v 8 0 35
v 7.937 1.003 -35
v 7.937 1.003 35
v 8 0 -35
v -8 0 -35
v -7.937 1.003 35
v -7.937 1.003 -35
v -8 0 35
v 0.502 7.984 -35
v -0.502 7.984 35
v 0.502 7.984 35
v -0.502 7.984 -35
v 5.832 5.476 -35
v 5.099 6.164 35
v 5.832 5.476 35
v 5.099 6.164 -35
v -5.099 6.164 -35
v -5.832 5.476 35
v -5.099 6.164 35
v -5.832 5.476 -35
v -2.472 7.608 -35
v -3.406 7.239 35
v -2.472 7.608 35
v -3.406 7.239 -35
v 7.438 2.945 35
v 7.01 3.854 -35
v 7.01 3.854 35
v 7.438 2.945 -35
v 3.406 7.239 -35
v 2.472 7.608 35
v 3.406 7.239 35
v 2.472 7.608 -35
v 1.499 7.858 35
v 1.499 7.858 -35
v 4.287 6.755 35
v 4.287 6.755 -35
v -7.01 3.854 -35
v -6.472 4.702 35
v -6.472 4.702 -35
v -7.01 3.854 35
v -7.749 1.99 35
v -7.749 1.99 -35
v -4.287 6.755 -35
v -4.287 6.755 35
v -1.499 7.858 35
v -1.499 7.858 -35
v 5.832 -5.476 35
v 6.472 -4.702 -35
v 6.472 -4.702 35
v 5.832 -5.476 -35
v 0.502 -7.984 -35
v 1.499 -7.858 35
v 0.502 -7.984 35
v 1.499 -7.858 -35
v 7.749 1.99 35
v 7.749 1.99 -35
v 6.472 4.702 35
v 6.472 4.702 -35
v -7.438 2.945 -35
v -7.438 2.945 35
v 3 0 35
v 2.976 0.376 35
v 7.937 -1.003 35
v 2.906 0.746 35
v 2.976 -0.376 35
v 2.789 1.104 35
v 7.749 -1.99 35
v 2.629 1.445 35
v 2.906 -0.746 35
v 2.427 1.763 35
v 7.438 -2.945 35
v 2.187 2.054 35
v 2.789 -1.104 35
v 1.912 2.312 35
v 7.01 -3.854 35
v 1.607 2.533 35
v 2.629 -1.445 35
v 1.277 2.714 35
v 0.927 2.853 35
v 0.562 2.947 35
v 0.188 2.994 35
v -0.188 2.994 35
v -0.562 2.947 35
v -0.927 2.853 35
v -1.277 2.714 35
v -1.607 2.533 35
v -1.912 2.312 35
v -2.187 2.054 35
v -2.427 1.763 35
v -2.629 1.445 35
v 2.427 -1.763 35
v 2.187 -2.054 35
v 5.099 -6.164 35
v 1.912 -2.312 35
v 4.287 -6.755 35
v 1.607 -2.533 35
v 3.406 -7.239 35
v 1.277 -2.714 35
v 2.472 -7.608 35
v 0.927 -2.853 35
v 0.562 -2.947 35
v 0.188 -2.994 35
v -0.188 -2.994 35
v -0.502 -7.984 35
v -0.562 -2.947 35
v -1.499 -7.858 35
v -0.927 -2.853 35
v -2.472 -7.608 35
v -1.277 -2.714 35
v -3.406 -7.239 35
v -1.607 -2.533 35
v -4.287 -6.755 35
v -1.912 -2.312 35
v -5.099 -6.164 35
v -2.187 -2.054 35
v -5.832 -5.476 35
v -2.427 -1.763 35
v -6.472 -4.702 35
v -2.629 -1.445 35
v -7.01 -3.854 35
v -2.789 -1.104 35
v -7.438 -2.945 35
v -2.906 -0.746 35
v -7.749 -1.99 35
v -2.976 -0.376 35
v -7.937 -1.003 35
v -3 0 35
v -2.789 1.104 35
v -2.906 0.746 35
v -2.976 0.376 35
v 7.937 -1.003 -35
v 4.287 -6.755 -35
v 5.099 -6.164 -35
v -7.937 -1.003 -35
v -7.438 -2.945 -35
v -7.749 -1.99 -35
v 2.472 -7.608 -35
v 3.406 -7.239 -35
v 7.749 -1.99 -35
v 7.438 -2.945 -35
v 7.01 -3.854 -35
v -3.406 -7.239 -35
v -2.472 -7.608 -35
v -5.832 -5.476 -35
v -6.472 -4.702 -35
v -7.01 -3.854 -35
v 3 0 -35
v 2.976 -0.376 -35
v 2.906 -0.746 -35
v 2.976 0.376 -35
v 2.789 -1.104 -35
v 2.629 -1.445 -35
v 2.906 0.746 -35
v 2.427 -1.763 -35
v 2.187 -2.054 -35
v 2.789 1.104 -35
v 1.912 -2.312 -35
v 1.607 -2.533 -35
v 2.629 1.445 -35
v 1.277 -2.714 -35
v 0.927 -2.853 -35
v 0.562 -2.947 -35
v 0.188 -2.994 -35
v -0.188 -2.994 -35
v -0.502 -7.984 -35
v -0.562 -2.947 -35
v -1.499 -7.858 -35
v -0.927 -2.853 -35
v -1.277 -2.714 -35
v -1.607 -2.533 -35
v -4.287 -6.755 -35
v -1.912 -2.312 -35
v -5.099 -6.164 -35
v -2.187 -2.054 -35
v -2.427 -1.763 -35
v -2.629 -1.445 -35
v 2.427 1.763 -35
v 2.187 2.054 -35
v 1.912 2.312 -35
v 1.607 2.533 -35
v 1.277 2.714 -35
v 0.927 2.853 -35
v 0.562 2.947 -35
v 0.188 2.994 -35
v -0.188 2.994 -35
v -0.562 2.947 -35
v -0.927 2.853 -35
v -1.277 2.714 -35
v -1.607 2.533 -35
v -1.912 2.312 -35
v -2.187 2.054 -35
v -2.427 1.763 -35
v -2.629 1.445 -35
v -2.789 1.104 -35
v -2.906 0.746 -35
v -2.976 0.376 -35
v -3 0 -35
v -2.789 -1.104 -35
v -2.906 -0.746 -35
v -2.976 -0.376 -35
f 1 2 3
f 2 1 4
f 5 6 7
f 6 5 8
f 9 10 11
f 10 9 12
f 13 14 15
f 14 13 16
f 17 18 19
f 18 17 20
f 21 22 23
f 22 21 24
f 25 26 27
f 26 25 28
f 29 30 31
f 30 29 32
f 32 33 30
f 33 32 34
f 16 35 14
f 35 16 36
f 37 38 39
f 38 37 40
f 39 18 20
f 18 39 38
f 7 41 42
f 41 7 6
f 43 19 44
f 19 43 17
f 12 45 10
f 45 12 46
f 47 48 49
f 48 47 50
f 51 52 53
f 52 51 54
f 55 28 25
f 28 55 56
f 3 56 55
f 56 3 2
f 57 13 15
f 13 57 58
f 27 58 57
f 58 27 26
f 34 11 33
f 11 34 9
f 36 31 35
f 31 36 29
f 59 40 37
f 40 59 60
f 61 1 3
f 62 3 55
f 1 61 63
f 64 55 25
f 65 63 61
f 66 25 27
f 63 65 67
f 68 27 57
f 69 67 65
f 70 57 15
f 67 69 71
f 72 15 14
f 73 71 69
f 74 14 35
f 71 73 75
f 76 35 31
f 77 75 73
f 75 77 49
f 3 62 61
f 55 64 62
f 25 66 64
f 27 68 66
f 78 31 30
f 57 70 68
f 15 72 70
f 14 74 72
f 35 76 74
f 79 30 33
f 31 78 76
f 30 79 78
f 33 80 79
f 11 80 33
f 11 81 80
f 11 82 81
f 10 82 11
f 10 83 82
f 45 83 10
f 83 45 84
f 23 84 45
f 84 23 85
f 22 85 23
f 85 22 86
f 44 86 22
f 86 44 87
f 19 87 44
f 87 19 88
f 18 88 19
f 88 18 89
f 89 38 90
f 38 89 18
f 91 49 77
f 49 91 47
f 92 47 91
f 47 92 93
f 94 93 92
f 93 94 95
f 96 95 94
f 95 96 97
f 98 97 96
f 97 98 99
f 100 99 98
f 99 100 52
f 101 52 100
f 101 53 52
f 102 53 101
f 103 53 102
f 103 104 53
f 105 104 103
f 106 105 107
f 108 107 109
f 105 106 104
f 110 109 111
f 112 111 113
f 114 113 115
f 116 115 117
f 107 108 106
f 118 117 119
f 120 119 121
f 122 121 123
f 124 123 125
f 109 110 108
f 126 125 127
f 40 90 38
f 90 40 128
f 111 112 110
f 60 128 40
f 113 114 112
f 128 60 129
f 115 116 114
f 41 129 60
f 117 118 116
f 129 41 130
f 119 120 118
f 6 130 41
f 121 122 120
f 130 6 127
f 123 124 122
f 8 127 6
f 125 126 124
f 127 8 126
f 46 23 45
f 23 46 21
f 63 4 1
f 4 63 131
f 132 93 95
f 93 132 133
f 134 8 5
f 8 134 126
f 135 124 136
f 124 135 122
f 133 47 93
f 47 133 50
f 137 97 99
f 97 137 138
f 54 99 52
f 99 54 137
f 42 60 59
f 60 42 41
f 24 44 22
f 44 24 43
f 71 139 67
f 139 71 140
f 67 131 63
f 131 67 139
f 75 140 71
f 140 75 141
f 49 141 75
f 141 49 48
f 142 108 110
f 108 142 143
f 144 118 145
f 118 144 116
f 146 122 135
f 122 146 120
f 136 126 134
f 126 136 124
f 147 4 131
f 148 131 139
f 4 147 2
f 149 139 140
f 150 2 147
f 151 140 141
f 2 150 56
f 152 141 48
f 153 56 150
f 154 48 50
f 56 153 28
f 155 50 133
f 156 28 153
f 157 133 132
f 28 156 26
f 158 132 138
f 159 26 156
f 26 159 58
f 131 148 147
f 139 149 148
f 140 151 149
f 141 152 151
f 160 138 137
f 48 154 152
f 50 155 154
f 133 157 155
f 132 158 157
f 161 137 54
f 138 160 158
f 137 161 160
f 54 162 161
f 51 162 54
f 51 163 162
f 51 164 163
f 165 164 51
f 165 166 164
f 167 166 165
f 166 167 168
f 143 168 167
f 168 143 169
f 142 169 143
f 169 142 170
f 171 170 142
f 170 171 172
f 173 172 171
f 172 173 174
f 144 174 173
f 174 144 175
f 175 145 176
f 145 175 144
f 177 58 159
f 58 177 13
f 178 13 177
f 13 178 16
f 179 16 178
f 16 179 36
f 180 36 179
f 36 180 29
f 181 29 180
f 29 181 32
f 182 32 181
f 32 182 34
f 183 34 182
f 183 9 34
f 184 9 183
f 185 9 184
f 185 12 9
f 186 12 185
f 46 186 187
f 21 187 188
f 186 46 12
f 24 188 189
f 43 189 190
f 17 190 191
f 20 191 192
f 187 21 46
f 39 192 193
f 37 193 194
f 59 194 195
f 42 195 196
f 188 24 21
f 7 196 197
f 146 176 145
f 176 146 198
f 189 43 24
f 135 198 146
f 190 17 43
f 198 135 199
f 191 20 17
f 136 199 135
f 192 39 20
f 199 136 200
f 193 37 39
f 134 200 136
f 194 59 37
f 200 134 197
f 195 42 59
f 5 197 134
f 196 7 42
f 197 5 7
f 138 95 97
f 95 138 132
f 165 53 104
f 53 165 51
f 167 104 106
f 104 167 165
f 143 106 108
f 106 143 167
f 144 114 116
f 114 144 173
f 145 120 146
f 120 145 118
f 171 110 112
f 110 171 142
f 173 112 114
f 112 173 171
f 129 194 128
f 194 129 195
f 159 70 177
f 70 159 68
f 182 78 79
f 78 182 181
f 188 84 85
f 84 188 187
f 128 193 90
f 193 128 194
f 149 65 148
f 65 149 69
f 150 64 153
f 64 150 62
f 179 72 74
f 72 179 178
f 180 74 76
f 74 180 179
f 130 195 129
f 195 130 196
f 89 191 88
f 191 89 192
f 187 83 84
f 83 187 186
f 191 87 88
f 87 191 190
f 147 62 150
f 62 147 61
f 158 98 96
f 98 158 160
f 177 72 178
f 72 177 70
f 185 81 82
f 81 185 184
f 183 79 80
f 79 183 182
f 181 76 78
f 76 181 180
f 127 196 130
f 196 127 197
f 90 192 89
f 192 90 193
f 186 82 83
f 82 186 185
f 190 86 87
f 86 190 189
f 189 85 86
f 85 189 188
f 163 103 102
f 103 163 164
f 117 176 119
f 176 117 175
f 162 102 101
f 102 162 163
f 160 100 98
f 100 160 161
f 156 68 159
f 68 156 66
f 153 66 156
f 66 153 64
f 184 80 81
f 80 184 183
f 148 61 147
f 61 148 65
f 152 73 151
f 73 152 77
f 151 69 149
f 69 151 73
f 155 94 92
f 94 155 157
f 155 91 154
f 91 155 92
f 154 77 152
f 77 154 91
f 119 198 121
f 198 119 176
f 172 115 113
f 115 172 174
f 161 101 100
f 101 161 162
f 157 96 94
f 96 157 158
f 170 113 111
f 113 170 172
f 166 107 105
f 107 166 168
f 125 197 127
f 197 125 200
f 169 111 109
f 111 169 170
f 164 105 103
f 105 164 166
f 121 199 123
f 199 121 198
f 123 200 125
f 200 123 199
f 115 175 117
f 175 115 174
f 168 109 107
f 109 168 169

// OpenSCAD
$fn = 50;


difference() {
	union() {
		translate(v = [0, 0, -35.0000000000]) {
			cylinder(h = 70, r = 8.0000000000);
		}
	}
	union() {
		translate(v = [0, 0, -100.0000000000]) {
			cylinder(h = 200, r = 3.0000000000);
		}
	}
}
